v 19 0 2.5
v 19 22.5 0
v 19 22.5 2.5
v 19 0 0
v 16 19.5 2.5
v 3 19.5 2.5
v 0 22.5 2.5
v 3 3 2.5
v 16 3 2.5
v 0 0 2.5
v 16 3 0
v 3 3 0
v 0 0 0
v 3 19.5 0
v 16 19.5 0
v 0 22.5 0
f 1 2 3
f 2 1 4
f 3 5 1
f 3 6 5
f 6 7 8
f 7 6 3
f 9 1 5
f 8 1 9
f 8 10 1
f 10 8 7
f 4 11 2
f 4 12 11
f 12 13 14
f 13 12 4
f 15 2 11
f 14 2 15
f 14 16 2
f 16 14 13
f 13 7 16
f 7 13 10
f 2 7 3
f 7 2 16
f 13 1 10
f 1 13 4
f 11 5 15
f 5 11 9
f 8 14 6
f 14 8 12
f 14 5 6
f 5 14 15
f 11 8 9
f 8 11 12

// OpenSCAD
width=19.0;
length=22.5;
height=2.5; 

difference()
{
  cube([width, length, height]);
  
  translate([3, 3, 0])
  {
    cube([width-3-3, length-3-3, height]);
  }
}

  
